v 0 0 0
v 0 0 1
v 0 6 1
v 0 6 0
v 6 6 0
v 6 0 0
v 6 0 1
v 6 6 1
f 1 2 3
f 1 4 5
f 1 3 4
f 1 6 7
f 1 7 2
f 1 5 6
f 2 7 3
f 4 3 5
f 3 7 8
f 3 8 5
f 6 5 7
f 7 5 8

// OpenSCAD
/* Warning, this is a very basic generator with a lot of approximation 
input data : [VQFN, UWX, 6x6x1.0mm, 40, , A, C04-00339A]
generated by com.zoubworld.electronics.cad.model3d.Basic
Date : Sun Feb 15 10:50:48 CET 2026
*/

//body
color("black")
translate([0,0,0])
cube([6.0,6.0,1.0], center=false);
